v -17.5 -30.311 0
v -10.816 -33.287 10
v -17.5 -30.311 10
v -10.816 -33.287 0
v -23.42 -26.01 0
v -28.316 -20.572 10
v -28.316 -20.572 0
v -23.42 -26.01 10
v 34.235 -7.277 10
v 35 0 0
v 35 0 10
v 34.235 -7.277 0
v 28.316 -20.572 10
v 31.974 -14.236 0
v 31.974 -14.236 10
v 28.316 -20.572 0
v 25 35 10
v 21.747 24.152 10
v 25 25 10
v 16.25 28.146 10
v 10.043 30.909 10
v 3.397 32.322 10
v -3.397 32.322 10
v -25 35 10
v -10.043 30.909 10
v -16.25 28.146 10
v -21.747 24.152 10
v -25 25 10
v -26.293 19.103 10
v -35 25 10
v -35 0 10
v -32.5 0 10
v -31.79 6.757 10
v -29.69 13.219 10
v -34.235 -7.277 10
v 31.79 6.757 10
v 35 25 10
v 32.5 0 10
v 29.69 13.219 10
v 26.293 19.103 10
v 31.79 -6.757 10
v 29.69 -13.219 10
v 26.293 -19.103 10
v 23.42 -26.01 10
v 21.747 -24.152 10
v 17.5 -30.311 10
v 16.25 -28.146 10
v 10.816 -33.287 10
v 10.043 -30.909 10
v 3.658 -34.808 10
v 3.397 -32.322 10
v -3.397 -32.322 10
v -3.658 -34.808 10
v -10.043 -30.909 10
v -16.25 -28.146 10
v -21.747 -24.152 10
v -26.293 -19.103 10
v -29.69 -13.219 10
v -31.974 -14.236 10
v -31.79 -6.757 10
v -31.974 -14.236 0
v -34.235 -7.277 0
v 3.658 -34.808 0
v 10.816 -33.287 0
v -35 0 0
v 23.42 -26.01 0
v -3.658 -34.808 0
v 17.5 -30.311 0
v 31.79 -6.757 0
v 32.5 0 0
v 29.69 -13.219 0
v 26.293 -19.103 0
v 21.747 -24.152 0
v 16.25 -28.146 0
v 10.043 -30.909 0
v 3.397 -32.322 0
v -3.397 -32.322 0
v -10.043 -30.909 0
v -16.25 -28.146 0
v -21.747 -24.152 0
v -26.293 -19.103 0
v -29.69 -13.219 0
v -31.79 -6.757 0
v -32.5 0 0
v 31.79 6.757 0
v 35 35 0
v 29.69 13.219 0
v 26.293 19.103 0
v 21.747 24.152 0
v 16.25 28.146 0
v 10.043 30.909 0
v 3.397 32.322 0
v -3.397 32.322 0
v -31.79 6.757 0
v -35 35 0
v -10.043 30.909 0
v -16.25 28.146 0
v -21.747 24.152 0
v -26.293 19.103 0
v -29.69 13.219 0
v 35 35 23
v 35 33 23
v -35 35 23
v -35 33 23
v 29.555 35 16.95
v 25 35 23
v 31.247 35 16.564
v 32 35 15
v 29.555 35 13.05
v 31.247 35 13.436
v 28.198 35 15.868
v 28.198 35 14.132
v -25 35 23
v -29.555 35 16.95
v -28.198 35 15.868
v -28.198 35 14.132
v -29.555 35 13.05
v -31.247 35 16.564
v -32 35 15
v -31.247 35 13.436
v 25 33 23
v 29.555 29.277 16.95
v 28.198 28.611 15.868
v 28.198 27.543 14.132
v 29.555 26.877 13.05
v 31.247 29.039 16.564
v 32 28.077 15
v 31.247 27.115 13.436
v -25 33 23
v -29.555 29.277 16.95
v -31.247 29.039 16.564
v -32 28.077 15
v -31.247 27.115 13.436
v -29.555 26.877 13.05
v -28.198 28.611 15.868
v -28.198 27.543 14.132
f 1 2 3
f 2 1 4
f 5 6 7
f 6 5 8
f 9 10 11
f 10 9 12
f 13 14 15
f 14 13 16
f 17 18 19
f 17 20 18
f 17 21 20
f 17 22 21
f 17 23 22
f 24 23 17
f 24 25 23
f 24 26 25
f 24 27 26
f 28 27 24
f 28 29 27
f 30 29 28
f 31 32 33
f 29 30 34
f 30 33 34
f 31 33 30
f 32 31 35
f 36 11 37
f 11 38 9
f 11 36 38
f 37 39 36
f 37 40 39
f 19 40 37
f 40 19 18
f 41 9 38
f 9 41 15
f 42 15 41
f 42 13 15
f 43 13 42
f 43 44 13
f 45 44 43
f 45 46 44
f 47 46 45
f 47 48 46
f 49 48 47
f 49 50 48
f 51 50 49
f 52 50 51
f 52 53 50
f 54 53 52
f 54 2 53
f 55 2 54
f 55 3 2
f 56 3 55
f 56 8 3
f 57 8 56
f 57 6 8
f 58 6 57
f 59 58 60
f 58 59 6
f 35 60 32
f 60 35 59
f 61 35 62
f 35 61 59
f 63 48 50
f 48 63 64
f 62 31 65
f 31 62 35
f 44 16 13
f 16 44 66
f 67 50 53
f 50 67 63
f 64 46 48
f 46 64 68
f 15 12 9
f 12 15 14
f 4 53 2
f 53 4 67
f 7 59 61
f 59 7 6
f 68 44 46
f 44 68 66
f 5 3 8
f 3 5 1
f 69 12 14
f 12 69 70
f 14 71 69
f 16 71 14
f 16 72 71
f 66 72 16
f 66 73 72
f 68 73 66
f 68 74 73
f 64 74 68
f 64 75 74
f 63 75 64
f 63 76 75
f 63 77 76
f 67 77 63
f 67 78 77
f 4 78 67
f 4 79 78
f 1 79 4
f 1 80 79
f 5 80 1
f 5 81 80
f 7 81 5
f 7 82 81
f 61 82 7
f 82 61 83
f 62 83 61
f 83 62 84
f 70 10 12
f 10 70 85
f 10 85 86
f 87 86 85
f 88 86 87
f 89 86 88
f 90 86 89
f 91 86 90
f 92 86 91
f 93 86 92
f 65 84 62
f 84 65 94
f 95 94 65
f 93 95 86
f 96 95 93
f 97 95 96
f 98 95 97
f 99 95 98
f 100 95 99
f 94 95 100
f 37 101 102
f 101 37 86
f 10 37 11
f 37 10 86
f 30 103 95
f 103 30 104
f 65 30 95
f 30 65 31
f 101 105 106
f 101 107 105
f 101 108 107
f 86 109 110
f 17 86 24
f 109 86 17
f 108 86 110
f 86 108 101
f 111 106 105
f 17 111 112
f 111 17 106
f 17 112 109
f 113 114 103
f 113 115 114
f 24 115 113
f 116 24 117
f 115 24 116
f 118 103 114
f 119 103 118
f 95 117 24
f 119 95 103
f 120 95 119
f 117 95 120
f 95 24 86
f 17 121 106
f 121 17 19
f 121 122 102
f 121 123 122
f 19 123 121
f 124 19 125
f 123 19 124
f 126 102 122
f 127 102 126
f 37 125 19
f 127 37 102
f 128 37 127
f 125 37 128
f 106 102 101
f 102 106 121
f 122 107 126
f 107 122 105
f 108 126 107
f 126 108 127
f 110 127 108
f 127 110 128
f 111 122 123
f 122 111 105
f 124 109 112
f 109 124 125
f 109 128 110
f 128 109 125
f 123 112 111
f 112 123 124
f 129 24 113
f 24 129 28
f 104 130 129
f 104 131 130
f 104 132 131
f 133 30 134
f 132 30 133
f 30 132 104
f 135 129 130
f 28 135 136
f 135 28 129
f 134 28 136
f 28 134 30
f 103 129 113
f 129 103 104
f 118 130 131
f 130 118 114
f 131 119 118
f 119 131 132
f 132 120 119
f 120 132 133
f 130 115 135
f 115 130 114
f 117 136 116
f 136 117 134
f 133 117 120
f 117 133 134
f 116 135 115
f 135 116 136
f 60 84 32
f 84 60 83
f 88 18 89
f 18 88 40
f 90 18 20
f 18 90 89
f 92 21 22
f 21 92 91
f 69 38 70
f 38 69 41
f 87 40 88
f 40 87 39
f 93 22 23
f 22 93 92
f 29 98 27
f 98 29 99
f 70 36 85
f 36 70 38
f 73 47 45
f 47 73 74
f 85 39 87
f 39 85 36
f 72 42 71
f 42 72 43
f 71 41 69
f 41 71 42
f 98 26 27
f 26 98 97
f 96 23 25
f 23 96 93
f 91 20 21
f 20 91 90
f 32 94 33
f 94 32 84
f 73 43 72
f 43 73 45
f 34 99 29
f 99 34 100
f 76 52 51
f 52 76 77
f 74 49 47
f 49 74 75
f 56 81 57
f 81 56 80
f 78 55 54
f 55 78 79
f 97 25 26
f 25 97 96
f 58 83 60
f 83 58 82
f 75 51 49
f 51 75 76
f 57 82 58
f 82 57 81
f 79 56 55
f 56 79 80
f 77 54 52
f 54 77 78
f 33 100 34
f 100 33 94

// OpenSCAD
difference(){
union(){
cylinder(d=70,h=10);
translate([-70/2,0,0])
cube([70,70/2,10]);
}
translate([0,0,-7])
cylinder(d=65,h=20);
}
difference(){
translate([70/2,70/2,10-2])
rotate([0,0,180])
hull(){
cube([10,2,15]);
cube([10,10,2]);
}
translate([70/2-5,70/2+5,15])
rotate([90,0,0])
cylinder(d=4,h=20);
}
mirror([1,0,0])
difference(){
translate([70/2,70/2,10-2])
rotate([0,0,180])
hull(){
cube([10,2,15]);
cube([10,10,2]);
}
translate([70/2-5,70/2+5,15])
rotate([90,0,0])
cylinder(d=4,h=20);
}
